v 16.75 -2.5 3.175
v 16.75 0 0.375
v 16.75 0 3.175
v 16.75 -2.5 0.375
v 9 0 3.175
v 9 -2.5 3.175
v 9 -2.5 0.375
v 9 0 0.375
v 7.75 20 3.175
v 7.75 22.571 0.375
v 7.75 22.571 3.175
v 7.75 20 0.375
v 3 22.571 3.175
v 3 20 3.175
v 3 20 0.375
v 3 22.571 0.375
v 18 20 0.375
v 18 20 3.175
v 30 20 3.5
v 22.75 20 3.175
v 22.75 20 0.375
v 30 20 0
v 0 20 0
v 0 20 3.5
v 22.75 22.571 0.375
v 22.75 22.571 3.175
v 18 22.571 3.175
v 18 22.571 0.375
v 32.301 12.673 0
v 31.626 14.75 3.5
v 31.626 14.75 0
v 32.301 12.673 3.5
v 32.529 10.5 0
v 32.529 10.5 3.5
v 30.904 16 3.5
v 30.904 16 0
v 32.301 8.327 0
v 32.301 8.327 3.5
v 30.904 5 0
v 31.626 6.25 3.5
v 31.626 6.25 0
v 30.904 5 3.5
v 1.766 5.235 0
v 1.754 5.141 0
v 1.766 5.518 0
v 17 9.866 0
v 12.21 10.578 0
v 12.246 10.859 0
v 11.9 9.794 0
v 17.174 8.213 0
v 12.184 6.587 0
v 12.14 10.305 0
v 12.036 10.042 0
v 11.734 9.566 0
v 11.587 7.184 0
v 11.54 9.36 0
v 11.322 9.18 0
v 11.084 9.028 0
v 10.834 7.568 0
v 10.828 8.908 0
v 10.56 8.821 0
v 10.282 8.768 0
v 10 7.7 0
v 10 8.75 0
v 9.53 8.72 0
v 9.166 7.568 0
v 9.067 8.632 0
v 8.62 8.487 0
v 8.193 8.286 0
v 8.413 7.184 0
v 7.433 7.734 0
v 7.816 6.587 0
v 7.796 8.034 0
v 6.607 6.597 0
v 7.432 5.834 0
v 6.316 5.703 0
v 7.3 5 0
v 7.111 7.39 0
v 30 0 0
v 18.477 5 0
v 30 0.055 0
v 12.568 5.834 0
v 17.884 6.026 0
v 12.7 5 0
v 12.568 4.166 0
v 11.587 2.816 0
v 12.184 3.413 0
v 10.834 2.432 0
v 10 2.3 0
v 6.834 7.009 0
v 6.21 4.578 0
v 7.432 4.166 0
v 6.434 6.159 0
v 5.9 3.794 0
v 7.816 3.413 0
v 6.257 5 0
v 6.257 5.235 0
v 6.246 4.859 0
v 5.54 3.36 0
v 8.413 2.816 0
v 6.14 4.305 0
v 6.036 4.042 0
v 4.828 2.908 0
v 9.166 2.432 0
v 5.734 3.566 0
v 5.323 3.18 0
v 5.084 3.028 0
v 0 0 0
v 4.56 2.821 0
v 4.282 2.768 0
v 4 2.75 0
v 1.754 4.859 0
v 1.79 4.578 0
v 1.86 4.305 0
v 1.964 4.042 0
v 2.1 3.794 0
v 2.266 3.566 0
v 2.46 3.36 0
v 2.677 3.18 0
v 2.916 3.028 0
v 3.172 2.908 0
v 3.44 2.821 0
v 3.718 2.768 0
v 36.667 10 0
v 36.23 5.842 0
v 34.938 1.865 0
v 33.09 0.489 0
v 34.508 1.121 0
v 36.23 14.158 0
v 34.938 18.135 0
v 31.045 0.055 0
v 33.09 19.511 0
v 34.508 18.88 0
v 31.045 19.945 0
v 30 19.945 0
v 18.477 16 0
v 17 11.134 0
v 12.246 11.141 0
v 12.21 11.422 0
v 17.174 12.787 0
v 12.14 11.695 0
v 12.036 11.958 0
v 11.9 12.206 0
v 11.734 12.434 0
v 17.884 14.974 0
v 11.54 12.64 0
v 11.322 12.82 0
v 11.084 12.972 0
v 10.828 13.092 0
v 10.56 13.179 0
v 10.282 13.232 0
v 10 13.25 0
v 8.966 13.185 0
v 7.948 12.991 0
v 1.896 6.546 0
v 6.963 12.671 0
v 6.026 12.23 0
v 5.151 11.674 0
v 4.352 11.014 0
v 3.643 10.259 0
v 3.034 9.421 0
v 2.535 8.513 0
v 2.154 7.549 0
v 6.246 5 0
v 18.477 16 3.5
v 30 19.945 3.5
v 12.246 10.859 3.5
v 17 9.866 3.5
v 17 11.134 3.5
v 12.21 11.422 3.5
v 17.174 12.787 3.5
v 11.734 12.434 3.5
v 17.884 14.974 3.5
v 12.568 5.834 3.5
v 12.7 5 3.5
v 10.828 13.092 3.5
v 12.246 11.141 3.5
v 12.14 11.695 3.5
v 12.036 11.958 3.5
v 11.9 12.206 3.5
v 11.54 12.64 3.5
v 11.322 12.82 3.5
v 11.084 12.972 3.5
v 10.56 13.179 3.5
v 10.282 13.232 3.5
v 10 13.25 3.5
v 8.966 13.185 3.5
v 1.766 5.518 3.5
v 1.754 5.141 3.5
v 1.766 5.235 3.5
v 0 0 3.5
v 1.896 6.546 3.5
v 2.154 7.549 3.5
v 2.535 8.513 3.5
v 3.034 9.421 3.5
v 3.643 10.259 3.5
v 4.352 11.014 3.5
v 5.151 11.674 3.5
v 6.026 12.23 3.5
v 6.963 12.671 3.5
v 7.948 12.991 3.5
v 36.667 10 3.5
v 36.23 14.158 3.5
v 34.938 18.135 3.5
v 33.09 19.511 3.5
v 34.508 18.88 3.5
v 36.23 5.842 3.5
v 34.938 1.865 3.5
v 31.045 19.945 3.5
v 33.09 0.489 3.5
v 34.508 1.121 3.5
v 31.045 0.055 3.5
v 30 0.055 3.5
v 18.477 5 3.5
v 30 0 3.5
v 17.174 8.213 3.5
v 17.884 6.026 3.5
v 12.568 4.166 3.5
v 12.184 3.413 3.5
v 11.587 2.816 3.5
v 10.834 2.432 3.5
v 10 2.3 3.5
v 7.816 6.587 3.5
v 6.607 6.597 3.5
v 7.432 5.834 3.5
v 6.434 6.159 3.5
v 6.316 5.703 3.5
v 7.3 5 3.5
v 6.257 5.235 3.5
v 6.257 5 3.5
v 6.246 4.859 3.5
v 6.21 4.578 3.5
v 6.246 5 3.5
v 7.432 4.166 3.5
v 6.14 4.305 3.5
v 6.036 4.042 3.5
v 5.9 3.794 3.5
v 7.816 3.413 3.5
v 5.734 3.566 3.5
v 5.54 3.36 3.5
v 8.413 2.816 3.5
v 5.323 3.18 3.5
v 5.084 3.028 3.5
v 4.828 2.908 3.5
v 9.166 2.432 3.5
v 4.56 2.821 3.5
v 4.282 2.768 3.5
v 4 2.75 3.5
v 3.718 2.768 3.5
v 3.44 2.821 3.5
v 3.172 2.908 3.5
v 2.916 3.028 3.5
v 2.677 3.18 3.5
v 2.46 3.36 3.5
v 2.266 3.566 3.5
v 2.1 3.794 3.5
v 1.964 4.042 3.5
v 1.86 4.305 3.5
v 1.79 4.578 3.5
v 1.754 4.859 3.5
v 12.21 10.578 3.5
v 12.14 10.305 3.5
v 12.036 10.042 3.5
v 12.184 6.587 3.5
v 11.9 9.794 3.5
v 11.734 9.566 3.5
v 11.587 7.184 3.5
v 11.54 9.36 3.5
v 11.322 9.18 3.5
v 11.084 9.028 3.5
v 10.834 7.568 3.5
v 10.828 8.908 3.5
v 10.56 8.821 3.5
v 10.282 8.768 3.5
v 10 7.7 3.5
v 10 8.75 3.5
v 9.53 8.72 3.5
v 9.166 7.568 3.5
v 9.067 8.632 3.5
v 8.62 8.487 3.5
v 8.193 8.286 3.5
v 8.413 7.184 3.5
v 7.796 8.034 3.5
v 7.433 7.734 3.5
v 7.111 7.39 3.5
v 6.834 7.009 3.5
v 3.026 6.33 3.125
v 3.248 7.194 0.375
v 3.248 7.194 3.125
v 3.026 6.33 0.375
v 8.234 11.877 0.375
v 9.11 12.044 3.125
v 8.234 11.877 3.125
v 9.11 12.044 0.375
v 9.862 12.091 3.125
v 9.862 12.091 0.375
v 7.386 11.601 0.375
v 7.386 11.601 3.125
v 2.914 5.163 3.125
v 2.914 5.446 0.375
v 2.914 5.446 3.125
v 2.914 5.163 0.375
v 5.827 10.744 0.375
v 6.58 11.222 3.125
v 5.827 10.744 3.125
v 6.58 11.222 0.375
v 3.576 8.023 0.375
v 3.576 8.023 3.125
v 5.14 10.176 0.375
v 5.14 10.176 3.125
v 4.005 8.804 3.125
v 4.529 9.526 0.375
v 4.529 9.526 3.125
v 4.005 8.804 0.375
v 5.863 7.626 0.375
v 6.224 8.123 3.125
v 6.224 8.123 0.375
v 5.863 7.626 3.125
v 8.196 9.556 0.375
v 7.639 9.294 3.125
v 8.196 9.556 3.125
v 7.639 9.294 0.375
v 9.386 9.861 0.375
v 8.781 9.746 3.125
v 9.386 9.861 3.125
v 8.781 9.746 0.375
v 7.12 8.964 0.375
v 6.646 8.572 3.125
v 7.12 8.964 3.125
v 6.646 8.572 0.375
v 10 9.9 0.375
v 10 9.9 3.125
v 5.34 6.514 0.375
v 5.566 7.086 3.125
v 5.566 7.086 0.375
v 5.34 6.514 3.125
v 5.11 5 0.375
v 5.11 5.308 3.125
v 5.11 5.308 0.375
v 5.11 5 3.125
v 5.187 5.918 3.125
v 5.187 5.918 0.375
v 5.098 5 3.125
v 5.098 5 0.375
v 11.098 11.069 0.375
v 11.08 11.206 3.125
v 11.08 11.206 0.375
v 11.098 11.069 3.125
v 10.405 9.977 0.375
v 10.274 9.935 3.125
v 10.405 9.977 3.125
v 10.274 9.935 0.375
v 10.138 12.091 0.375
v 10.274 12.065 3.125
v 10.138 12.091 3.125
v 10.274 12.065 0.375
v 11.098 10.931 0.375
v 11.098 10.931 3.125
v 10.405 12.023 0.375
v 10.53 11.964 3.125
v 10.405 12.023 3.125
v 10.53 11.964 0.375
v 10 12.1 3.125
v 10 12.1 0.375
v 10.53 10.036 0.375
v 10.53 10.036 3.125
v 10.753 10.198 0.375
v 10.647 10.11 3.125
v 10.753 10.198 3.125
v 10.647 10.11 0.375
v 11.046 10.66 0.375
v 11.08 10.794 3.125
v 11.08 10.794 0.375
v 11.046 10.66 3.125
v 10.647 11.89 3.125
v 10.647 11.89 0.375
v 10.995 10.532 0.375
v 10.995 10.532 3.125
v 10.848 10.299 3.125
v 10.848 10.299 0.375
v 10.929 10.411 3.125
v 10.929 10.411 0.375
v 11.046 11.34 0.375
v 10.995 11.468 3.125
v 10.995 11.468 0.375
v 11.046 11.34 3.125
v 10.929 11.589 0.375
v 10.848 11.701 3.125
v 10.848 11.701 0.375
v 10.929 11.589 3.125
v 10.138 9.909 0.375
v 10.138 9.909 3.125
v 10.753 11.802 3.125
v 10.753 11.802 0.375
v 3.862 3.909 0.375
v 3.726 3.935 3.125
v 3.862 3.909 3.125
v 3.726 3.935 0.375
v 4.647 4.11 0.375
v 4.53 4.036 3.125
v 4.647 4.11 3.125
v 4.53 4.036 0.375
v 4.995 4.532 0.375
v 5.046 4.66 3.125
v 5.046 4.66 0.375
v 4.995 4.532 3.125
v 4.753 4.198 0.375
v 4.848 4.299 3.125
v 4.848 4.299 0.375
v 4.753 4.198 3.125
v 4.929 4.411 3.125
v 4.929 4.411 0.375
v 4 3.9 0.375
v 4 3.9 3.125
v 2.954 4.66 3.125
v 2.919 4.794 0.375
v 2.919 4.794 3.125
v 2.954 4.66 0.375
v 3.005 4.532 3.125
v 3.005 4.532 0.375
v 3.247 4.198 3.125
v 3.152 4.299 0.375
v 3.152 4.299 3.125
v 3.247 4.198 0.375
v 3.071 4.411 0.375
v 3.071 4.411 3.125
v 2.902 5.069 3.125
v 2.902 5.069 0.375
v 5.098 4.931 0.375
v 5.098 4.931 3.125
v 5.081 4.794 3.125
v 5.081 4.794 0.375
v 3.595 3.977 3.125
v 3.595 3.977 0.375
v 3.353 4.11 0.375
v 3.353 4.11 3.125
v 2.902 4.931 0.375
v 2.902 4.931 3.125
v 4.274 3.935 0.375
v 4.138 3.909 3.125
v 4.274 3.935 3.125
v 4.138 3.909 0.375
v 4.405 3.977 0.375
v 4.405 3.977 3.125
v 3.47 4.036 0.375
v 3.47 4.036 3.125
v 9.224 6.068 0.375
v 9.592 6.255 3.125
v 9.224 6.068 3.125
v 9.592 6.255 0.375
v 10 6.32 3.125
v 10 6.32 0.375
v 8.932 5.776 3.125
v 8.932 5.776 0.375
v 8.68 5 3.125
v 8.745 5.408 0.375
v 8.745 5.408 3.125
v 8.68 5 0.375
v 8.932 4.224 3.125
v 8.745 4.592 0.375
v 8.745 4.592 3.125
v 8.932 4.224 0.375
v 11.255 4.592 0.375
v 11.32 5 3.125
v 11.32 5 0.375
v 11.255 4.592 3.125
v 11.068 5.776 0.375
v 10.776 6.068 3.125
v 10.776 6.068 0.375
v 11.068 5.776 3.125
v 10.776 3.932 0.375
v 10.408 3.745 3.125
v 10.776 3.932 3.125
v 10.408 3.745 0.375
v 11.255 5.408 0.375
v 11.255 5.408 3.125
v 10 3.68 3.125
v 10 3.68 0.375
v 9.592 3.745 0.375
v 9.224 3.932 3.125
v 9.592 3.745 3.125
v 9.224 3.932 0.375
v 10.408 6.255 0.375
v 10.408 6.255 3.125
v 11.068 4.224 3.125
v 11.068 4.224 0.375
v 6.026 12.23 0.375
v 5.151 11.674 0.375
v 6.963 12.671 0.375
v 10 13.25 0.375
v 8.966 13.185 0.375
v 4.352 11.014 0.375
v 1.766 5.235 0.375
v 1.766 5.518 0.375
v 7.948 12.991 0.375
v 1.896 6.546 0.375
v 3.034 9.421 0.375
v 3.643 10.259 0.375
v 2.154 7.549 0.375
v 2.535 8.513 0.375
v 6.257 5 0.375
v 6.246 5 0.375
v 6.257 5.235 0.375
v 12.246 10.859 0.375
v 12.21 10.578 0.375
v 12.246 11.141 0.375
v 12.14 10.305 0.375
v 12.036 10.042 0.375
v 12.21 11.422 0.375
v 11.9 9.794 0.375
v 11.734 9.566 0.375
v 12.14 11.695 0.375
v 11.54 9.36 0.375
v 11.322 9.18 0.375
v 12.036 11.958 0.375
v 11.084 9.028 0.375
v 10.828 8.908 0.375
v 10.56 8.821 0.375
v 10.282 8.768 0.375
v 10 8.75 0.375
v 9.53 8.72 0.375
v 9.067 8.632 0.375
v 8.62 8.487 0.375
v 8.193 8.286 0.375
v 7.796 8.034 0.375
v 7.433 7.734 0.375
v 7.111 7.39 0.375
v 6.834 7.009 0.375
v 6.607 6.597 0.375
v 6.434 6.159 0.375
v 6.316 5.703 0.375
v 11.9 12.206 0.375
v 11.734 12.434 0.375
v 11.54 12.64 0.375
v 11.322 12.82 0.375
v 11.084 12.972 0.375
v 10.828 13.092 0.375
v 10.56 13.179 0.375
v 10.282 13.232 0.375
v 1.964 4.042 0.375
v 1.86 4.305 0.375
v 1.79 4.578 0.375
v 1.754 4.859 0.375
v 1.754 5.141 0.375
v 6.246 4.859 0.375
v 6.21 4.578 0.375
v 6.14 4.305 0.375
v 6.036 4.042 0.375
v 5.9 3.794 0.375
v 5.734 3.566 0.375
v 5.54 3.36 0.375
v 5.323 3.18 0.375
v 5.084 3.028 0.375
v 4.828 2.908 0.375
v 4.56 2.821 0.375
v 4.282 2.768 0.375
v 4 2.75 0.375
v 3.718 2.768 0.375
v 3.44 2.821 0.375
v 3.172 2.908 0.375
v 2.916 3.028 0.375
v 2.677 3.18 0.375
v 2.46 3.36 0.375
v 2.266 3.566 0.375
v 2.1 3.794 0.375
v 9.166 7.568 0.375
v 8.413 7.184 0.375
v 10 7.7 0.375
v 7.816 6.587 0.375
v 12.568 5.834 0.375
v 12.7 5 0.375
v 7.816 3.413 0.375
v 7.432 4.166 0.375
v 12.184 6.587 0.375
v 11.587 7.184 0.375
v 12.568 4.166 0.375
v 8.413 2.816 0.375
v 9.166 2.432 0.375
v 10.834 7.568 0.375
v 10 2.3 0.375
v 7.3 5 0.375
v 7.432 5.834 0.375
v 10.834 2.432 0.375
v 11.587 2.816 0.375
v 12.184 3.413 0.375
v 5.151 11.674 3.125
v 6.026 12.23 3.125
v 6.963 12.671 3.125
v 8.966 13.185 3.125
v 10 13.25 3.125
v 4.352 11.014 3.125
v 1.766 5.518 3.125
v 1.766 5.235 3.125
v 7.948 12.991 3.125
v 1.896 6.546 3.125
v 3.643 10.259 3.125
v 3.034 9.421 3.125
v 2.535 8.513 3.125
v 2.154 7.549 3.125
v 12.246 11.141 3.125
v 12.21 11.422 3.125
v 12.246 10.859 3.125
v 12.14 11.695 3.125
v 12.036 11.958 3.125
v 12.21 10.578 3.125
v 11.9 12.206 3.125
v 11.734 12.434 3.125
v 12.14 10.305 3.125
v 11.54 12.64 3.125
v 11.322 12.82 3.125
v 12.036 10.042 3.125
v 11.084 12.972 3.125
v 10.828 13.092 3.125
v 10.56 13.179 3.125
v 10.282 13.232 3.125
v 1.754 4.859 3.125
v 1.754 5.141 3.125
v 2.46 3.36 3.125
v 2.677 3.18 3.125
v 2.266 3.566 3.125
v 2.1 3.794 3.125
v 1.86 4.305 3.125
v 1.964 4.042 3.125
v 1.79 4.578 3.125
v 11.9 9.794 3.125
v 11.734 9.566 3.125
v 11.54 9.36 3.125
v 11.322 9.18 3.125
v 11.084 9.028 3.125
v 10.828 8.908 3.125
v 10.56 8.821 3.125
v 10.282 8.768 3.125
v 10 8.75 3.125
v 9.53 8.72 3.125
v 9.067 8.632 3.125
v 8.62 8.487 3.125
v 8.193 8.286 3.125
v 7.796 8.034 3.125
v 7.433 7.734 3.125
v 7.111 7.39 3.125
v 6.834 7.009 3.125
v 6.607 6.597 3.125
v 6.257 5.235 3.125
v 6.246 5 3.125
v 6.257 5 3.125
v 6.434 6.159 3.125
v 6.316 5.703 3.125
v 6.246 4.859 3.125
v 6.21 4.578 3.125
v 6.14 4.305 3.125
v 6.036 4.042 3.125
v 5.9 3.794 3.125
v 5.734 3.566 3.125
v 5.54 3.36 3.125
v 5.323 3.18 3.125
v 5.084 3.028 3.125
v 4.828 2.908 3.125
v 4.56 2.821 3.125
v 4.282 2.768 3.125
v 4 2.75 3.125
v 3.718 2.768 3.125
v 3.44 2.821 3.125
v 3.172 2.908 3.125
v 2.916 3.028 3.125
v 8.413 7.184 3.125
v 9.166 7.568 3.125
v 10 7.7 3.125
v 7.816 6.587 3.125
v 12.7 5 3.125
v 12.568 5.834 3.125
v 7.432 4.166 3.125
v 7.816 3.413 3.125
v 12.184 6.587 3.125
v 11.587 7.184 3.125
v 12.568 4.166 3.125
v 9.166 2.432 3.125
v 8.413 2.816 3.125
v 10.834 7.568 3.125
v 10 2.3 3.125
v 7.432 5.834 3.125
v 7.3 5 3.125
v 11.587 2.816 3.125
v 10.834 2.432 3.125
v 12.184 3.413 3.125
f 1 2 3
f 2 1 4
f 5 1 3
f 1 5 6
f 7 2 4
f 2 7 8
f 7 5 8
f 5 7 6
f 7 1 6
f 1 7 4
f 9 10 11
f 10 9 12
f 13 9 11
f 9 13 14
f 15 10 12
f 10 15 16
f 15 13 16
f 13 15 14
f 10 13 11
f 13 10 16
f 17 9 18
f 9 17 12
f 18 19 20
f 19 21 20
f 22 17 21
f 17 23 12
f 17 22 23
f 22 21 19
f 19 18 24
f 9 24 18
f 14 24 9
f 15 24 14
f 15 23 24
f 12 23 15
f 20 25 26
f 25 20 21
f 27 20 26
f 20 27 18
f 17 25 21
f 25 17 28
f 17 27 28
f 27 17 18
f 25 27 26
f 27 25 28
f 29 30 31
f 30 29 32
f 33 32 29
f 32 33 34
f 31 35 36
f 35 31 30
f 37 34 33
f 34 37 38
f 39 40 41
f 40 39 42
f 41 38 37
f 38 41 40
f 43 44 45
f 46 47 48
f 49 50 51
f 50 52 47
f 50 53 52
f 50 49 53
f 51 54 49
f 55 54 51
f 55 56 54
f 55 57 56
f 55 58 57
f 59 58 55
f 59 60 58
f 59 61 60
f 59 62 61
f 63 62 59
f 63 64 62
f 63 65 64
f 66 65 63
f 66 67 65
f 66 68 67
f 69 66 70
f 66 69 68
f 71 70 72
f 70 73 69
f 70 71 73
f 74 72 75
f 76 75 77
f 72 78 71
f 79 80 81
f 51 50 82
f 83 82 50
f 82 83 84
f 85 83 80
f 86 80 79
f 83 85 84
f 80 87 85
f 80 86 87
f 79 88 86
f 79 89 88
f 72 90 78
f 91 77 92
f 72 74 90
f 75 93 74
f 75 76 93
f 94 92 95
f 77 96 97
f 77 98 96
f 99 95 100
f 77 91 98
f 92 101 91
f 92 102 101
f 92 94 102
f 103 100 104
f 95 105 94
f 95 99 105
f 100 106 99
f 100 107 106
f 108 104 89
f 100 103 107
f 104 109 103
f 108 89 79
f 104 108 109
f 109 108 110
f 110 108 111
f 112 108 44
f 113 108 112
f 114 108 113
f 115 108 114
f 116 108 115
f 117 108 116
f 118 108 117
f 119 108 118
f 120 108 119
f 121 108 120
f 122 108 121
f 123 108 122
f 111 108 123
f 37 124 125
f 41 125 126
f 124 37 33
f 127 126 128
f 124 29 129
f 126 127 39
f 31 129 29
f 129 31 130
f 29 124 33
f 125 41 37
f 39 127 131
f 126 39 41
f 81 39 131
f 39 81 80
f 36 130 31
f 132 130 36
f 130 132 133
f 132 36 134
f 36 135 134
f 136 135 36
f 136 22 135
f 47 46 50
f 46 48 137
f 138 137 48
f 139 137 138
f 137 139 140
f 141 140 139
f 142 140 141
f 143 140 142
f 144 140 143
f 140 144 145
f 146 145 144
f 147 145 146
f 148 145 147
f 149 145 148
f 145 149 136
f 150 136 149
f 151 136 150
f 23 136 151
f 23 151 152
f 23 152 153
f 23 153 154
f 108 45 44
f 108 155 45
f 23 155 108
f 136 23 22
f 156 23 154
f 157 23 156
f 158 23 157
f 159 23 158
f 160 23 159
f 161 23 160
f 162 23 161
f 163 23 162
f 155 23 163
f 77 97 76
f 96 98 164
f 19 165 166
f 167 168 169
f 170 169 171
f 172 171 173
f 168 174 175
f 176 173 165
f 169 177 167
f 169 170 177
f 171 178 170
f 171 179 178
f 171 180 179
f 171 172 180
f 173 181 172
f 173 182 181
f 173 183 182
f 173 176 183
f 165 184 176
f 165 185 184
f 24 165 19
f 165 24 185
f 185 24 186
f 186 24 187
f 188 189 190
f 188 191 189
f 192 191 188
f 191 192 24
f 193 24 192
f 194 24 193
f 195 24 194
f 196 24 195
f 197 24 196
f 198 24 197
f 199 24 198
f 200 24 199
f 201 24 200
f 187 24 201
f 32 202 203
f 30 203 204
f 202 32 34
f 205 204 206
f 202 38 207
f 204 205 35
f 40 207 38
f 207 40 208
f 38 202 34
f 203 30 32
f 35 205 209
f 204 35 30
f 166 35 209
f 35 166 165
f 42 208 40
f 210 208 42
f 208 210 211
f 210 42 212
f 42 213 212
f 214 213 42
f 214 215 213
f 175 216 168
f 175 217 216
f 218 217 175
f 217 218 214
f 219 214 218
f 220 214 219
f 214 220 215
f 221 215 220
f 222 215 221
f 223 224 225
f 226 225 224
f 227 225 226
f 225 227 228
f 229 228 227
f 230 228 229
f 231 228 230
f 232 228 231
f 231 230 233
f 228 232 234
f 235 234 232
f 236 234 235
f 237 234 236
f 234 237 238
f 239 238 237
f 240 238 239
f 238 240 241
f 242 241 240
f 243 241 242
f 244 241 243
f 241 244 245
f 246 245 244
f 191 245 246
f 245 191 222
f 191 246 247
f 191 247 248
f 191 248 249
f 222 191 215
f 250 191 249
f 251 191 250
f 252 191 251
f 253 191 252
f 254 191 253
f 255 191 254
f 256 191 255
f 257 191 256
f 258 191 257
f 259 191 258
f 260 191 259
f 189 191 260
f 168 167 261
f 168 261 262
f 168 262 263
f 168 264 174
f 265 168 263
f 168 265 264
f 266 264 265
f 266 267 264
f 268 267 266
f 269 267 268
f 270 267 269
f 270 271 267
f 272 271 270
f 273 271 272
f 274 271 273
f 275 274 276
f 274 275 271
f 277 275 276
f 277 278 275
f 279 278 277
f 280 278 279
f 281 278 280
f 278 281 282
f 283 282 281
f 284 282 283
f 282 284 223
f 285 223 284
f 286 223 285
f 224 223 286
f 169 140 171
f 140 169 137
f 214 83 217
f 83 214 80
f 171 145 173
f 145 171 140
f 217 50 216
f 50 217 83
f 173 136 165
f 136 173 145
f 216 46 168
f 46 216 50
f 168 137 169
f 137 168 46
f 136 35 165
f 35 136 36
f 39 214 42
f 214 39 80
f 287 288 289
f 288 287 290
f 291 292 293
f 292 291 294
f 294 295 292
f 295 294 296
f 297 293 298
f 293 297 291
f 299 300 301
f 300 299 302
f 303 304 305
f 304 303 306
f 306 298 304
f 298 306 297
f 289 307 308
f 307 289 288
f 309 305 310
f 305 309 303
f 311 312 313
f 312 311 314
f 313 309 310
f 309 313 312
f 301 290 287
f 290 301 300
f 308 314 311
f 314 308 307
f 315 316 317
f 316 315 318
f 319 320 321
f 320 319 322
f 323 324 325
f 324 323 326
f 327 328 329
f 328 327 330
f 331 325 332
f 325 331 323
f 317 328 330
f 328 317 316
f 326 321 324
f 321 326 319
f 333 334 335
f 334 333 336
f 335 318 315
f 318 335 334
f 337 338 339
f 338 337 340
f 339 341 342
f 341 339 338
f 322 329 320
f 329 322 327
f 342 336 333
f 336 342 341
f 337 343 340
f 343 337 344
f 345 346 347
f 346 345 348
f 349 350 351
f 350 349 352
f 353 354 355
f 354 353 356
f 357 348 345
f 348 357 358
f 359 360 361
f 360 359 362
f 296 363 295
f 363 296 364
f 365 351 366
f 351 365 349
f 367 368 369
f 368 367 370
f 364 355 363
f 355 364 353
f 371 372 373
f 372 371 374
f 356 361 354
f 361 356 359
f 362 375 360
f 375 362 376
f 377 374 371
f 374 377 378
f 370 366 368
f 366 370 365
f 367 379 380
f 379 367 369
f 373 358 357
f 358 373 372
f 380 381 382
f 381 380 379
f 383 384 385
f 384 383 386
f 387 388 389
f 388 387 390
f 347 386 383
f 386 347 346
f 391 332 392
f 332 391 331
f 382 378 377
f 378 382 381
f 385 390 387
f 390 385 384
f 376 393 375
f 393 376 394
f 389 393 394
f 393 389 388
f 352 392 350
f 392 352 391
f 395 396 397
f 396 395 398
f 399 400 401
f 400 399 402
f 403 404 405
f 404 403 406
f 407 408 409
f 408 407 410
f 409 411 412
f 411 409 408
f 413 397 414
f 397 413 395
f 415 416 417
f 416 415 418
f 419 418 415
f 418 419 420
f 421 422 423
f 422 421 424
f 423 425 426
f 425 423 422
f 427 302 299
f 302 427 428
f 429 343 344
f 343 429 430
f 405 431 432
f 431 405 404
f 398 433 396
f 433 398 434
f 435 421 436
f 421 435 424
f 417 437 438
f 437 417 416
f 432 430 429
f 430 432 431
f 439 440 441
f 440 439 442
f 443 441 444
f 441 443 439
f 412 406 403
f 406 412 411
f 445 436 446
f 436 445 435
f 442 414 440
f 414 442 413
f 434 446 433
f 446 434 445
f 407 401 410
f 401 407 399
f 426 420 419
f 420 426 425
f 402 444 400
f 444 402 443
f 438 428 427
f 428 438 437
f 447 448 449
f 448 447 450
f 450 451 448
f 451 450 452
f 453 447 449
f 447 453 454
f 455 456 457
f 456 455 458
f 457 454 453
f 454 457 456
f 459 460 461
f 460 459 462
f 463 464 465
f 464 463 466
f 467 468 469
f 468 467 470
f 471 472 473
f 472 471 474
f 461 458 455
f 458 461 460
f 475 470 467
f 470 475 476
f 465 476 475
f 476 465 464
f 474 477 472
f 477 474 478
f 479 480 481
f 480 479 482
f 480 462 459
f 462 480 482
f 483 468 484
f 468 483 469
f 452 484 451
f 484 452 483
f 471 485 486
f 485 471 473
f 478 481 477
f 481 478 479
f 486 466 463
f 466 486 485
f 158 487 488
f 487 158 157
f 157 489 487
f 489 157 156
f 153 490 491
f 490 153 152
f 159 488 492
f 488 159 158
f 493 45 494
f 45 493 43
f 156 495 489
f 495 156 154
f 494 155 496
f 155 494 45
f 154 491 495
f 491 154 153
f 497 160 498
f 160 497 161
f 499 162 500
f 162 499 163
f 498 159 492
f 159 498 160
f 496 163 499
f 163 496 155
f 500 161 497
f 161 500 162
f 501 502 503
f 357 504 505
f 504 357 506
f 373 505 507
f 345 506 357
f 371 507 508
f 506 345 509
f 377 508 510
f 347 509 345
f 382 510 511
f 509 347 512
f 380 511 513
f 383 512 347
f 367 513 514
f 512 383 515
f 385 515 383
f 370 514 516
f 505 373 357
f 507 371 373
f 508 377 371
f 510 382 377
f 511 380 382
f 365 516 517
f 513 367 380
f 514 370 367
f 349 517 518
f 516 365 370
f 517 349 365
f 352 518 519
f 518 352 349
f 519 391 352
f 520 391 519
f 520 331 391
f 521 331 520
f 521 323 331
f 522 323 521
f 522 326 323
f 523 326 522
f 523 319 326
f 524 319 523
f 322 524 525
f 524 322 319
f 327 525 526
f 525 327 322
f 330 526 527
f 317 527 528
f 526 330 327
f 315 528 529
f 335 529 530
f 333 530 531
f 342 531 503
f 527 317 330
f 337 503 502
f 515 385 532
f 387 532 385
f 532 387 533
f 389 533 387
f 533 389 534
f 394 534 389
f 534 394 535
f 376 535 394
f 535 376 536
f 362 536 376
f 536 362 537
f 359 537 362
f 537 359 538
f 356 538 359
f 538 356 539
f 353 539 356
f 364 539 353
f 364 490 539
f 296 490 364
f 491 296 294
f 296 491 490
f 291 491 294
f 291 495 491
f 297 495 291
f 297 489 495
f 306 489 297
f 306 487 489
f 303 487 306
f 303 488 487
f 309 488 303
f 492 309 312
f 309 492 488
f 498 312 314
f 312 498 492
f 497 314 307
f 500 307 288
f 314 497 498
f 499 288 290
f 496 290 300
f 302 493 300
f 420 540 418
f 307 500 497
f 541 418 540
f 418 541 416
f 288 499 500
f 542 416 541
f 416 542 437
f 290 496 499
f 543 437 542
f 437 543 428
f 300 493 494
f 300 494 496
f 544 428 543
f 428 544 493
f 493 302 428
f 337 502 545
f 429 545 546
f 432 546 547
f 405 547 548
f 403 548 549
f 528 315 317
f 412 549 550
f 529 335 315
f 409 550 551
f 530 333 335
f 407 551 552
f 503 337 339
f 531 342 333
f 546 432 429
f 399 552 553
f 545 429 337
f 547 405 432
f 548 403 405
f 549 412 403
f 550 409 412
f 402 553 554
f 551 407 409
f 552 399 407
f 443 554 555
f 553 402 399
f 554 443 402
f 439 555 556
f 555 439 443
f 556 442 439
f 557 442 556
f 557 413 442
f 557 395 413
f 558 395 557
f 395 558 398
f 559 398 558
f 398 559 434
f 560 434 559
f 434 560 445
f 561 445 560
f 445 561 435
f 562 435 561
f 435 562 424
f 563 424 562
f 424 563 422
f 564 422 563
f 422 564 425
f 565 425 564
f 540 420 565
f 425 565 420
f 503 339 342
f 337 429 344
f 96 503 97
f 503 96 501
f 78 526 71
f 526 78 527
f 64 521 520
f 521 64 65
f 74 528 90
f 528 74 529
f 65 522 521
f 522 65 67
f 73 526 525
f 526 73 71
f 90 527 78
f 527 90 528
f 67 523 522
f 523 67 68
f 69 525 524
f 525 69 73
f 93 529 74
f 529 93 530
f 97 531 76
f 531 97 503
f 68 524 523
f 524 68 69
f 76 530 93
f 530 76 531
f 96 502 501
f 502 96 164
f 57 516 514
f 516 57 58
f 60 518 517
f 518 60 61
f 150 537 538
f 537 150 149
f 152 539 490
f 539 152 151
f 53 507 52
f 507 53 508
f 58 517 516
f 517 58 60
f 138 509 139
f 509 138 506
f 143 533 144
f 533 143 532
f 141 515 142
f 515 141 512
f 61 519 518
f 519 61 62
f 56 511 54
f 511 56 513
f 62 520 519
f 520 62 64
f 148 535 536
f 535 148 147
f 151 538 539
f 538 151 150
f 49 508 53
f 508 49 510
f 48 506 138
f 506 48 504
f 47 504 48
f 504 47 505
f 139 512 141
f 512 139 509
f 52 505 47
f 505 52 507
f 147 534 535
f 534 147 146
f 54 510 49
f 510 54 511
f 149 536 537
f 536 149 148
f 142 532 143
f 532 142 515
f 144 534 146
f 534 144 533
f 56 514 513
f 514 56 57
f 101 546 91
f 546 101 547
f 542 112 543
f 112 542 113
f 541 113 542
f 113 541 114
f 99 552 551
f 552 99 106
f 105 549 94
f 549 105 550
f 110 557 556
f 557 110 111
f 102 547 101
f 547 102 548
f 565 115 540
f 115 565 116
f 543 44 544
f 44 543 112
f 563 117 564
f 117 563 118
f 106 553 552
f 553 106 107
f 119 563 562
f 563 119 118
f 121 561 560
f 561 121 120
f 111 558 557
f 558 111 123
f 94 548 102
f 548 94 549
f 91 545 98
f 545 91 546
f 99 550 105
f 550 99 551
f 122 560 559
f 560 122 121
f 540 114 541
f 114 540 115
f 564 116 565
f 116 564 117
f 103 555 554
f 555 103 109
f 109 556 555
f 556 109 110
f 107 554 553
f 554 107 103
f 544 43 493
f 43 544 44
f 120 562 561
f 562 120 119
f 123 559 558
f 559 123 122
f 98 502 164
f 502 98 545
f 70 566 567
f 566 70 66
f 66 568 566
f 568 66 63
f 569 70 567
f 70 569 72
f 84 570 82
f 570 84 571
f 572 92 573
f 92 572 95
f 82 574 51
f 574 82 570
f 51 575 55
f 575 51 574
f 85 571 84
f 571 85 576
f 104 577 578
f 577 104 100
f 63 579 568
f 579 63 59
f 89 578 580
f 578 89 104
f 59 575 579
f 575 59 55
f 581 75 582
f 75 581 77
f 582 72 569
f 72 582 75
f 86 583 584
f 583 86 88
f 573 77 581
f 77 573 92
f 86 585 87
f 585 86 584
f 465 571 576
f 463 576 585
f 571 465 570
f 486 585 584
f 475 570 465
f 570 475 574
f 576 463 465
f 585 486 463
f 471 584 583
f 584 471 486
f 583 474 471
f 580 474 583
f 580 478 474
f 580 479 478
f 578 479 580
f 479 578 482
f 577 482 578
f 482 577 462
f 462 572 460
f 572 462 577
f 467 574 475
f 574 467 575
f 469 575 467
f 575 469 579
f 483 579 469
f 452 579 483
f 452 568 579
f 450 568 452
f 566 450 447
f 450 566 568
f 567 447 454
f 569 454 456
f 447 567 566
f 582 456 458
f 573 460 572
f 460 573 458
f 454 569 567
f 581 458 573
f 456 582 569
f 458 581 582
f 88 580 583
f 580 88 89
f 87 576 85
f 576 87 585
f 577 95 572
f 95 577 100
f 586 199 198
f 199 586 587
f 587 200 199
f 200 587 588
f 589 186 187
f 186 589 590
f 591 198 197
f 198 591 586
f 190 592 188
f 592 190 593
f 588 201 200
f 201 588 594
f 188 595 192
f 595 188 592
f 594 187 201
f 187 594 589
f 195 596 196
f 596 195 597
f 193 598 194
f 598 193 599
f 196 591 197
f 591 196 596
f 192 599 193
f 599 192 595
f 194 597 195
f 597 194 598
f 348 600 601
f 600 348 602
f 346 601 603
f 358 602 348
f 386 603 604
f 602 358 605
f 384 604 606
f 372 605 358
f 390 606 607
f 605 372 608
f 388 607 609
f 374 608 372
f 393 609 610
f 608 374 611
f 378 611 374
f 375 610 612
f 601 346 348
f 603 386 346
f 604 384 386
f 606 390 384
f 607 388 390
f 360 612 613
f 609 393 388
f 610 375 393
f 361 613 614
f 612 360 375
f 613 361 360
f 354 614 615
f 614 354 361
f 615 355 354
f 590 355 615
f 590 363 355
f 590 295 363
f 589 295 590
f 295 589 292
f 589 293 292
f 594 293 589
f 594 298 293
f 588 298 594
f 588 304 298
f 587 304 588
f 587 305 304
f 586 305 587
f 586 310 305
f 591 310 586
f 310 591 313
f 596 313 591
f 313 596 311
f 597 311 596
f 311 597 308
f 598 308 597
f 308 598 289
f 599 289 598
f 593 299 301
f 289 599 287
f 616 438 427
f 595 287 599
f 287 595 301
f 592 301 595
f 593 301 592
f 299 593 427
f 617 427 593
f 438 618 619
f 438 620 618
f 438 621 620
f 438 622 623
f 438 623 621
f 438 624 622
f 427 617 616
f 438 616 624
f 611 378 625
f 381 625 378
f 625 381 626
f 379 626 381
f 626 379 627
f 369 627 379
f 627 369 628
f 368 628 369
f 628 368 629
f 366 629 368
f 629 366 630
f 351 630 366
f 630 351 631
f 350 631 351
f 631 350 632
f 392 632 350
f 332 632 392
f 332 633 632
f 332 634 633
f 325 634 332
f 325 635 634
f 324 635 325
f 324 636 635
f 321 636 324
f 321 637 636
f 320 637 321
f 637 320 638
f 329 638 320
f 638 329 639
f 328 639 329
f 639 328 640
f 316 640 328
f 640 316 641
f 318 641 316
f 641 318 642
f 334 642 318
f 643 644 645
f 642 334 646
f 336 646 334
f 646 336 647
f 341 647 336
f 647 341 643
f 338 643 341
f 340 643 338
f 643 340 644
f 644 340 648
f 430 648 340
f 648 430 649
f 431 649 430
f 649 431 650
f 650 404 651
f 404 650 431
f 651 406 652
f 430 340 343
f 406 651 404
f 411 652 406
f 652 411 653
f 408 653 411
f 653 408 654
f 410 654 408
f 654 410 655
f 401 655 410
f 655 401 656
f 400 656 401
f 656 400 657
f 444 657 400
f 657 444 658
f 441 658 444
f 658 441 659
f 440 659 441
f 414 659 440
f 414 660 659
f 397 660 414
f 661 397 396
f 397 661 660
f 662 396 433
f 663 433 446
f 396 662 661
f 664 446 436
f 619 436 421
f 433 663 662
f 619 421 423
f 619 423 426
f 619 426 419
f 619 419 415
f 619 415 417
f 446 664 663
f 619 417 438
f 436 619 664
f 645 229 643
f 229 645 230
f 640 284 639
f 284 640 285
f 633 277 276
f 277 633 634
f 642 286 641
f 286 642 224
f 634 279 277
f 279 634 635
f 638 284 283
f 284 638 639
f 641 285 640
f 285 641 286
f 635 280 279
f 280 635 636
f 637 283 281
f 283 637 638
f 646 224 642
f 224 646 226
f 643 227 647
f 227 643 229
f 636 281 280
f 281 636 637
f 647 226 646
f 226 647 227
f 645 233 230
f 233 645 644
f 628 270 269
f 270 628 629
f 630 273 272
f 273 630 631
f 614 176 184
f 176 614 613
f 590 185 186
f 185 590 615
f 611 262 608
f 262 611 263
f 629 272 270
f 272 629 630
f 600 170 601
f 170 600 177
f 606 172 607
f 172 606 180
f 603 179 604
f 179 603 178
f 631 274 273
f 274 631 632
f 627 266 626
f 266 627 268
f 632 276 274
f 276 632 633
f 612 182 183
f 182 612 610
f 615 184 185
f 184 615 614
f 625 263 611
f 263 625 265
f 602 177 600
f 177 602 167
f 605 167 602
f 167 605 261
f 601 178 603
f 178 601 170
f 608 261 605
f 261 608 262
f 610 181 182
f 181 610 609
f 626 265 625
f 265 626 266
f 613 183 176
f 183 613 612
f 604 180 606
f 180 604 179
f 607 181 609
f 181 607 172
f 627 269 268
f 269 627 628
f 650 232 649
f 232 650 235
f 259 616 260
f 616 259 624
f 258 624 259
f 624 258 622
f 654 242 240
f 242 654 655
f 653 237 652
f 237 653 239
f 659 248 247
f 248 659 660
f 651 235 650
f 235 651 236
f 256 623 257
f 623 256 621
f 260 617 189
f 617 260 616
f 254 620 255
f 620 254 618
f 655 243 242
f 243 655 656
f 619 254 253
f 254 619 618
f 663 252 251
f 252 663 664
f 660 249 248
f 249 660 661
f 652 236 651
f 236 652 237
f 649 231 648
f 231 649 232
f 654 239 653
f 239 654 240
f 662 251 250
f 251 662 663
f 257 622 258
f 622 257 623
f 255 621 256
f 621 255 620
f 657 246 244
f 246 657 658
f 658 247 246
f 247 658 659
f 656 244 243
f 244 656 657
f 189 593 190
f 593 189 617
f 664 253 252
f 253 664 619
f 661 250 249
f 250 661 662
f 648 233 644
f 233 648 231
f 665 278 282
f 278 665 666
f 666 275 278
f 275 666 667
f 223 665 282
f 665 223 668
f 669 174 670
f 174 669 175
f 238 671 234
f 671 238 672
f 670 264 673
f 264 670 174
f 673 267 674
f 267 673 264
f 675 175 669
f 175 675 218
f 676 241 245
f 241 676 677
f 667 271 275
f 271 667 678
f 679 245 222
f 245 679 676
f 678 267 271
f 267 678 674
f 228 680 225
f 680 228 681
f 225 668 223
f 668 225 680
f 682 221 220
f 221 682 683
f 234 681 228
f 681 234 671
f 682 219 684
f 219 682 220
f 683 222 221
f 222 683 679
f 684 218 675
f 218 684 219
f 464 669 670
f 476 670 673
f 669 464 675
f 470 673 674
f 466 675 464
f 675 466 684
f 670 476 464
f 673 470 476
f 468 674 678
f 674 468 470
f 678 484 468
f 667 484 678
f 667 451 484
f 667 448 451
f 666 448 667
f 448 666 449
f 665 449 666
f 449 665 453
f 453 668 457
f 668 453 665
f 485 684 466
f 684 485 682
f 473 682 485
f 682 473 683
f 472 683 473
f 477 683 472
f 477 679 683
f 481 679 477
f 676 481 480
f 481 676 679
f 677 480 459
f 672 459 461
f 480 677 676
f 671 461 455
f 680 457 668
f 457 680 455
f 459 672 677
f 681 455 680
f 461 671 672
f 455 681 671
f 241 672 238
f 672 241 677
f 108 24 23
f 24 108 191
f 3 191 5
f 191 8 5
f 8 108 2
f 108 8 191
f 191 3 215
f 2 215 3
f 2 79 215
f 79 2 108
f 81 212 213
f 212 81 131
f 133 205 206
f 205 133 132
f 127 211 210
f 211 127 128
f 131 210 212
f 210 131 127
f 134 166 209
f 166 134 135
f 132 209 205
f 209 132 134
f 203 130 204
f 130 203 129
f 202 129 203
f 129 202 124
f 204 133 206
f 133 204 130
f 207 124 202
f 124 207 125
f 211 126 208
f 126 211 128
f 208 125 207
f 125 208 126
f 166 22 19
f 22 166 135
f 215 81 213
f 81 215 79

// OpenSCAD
// file: fpv_camera_mount.scad
module fpv_camera_mount_arc(depth, screwwidth, radius = 6)
{
	res = $preview ? 10 : 50;
	intersection() {
		outrad = screwwidth / 2 + radius;
		inrad = radius - screwwidth / 2;
		difference() {
			cylinder(depth, r = outrad, $fn = res);
			cylinder(depth, r = inrad, $fn = res);
		}
		arcextend = screwwidth / 2;
		cube([outrad + arcextend, outrad + arcextend, depth]);
	}
	translate([radius, 0, 0]) cylinder(depth, r = screwwidth / 2, $fn = res);
	translate([0, radius, 0]) cylinder(depth, r = screwwidth / 2, $fn = res);
}

module fpv_camera_mount_hole(depth, screwwidth = 2)
{
	res = $preview ? 10 : 20;
	cylinder(depth, r = screwwidth * 1.2 / 2, $fn = res);
}

module fpv_camera_mount(depth, screwwidth = 2)
{
	fpv_camera_mount_full_6mm(depth, screwwidth);
	rotate([0, 0, 160]) fpv_camera_mount_half_9mm(depth, screwwidth);
}

module fpv_camera_mount_full(depth, screwwidth = 2)
{
	fpv_camera_mount_full_6mm(depth, screwwidth);
	fpv_camera_mount_full_9mm(depth, screwwidth);
}

module fpv_camera_mount_half_6mm(depth, screwwidth = 2)
{
	fpv_camera_mount_hole(depth, screwwidth);
	fpv_camera_mount_arc(depth, screwwidth, 6);
}

module fpv_camera_mount_full_6mm(depth, screwwidth = 2)
{
	rotate([0, 0, 90]) fpv_camera_mount_half_6mm(depth, screwwidth);
	rotate([0, 0, 270]) fpv_camera_mount_half_6mm(depth, screwwidth);
}

module fpv_camera_mount_half_9mm(depth, screwwidth = 2)
{
	fpv_camera_mount_hole(depth, screwwidth);
	fpv_camera_mount_arc(depth, screwwidth, 9);
}

module fpv_camera_mount_full_9mm(depth, screwwidth = 2, angle_offset = -20)
{
	rotate([0, 0, angle_offset]) fpv_camera_mount_half_9mm(depth, screwwidth);
	rotate([0, 0, 180 + angle_offset]) fpv_camera_mount_half_9mm(depth, screwwidth);
}
// main file
use <fpv_camera_mount.scad>
d = 3; h = 20; w = 40;

translate([0, 0, 0.25 / 2 * 3]) {
	sh = d / 7 * 6;
	sd = d / 15 * 14;
	// Bottom stub
	translate([9, -(d / 6 * 5), 0]) cube([7.75, sh, sd]);
	// Top stubs
	translate([3, h, 0])            cube([4.75, sh, sd]);
	translate([18, h, 0])           cube([4.75, sh, sd]);
}

intersection() {
	d1 = d + 0.5;
	difference() {
		cube([w, h, d1]);
		translate([17, 5, 0]) {
			intersection() {
				w = 16; h = 11;
				translate([w / 3.15, h / 2, 0]) cylinder(d1, r = h * 0.95);
				translate([w / 3 * 2.05, h / 2, 0]) cylinder(d1, r = h);
				cube([w, h, d1]);
			}
		}
		translate([w / 4, h / 4, 0]) {
			rotate([0, 0, 90]) fpv_camera_mount_half_6mm(d1, 2.2);
			rotate([0, 0, 90]) fpv_camera_mount_half_6mm(0.25 / 2 * 3, 4.5);
			translate([0, 0, d1 - 0.25 / 2 * 3]) rotate([0, 0, 90]) fpv_camera_mount_half_6mm(0.25 / 2 * 3, 4.5);
		}
	}
	union() {
		cube([w / 4 * 3, h, d1]);
		translate([w / 4 * 3, h / 2, 0]) {
			intersection() {
				cylinder(d1, r = h / 2);
				translate([-(h / 1.5), 0, 0]) cylinder(d1, r = h);
			}
		}
	}
}
